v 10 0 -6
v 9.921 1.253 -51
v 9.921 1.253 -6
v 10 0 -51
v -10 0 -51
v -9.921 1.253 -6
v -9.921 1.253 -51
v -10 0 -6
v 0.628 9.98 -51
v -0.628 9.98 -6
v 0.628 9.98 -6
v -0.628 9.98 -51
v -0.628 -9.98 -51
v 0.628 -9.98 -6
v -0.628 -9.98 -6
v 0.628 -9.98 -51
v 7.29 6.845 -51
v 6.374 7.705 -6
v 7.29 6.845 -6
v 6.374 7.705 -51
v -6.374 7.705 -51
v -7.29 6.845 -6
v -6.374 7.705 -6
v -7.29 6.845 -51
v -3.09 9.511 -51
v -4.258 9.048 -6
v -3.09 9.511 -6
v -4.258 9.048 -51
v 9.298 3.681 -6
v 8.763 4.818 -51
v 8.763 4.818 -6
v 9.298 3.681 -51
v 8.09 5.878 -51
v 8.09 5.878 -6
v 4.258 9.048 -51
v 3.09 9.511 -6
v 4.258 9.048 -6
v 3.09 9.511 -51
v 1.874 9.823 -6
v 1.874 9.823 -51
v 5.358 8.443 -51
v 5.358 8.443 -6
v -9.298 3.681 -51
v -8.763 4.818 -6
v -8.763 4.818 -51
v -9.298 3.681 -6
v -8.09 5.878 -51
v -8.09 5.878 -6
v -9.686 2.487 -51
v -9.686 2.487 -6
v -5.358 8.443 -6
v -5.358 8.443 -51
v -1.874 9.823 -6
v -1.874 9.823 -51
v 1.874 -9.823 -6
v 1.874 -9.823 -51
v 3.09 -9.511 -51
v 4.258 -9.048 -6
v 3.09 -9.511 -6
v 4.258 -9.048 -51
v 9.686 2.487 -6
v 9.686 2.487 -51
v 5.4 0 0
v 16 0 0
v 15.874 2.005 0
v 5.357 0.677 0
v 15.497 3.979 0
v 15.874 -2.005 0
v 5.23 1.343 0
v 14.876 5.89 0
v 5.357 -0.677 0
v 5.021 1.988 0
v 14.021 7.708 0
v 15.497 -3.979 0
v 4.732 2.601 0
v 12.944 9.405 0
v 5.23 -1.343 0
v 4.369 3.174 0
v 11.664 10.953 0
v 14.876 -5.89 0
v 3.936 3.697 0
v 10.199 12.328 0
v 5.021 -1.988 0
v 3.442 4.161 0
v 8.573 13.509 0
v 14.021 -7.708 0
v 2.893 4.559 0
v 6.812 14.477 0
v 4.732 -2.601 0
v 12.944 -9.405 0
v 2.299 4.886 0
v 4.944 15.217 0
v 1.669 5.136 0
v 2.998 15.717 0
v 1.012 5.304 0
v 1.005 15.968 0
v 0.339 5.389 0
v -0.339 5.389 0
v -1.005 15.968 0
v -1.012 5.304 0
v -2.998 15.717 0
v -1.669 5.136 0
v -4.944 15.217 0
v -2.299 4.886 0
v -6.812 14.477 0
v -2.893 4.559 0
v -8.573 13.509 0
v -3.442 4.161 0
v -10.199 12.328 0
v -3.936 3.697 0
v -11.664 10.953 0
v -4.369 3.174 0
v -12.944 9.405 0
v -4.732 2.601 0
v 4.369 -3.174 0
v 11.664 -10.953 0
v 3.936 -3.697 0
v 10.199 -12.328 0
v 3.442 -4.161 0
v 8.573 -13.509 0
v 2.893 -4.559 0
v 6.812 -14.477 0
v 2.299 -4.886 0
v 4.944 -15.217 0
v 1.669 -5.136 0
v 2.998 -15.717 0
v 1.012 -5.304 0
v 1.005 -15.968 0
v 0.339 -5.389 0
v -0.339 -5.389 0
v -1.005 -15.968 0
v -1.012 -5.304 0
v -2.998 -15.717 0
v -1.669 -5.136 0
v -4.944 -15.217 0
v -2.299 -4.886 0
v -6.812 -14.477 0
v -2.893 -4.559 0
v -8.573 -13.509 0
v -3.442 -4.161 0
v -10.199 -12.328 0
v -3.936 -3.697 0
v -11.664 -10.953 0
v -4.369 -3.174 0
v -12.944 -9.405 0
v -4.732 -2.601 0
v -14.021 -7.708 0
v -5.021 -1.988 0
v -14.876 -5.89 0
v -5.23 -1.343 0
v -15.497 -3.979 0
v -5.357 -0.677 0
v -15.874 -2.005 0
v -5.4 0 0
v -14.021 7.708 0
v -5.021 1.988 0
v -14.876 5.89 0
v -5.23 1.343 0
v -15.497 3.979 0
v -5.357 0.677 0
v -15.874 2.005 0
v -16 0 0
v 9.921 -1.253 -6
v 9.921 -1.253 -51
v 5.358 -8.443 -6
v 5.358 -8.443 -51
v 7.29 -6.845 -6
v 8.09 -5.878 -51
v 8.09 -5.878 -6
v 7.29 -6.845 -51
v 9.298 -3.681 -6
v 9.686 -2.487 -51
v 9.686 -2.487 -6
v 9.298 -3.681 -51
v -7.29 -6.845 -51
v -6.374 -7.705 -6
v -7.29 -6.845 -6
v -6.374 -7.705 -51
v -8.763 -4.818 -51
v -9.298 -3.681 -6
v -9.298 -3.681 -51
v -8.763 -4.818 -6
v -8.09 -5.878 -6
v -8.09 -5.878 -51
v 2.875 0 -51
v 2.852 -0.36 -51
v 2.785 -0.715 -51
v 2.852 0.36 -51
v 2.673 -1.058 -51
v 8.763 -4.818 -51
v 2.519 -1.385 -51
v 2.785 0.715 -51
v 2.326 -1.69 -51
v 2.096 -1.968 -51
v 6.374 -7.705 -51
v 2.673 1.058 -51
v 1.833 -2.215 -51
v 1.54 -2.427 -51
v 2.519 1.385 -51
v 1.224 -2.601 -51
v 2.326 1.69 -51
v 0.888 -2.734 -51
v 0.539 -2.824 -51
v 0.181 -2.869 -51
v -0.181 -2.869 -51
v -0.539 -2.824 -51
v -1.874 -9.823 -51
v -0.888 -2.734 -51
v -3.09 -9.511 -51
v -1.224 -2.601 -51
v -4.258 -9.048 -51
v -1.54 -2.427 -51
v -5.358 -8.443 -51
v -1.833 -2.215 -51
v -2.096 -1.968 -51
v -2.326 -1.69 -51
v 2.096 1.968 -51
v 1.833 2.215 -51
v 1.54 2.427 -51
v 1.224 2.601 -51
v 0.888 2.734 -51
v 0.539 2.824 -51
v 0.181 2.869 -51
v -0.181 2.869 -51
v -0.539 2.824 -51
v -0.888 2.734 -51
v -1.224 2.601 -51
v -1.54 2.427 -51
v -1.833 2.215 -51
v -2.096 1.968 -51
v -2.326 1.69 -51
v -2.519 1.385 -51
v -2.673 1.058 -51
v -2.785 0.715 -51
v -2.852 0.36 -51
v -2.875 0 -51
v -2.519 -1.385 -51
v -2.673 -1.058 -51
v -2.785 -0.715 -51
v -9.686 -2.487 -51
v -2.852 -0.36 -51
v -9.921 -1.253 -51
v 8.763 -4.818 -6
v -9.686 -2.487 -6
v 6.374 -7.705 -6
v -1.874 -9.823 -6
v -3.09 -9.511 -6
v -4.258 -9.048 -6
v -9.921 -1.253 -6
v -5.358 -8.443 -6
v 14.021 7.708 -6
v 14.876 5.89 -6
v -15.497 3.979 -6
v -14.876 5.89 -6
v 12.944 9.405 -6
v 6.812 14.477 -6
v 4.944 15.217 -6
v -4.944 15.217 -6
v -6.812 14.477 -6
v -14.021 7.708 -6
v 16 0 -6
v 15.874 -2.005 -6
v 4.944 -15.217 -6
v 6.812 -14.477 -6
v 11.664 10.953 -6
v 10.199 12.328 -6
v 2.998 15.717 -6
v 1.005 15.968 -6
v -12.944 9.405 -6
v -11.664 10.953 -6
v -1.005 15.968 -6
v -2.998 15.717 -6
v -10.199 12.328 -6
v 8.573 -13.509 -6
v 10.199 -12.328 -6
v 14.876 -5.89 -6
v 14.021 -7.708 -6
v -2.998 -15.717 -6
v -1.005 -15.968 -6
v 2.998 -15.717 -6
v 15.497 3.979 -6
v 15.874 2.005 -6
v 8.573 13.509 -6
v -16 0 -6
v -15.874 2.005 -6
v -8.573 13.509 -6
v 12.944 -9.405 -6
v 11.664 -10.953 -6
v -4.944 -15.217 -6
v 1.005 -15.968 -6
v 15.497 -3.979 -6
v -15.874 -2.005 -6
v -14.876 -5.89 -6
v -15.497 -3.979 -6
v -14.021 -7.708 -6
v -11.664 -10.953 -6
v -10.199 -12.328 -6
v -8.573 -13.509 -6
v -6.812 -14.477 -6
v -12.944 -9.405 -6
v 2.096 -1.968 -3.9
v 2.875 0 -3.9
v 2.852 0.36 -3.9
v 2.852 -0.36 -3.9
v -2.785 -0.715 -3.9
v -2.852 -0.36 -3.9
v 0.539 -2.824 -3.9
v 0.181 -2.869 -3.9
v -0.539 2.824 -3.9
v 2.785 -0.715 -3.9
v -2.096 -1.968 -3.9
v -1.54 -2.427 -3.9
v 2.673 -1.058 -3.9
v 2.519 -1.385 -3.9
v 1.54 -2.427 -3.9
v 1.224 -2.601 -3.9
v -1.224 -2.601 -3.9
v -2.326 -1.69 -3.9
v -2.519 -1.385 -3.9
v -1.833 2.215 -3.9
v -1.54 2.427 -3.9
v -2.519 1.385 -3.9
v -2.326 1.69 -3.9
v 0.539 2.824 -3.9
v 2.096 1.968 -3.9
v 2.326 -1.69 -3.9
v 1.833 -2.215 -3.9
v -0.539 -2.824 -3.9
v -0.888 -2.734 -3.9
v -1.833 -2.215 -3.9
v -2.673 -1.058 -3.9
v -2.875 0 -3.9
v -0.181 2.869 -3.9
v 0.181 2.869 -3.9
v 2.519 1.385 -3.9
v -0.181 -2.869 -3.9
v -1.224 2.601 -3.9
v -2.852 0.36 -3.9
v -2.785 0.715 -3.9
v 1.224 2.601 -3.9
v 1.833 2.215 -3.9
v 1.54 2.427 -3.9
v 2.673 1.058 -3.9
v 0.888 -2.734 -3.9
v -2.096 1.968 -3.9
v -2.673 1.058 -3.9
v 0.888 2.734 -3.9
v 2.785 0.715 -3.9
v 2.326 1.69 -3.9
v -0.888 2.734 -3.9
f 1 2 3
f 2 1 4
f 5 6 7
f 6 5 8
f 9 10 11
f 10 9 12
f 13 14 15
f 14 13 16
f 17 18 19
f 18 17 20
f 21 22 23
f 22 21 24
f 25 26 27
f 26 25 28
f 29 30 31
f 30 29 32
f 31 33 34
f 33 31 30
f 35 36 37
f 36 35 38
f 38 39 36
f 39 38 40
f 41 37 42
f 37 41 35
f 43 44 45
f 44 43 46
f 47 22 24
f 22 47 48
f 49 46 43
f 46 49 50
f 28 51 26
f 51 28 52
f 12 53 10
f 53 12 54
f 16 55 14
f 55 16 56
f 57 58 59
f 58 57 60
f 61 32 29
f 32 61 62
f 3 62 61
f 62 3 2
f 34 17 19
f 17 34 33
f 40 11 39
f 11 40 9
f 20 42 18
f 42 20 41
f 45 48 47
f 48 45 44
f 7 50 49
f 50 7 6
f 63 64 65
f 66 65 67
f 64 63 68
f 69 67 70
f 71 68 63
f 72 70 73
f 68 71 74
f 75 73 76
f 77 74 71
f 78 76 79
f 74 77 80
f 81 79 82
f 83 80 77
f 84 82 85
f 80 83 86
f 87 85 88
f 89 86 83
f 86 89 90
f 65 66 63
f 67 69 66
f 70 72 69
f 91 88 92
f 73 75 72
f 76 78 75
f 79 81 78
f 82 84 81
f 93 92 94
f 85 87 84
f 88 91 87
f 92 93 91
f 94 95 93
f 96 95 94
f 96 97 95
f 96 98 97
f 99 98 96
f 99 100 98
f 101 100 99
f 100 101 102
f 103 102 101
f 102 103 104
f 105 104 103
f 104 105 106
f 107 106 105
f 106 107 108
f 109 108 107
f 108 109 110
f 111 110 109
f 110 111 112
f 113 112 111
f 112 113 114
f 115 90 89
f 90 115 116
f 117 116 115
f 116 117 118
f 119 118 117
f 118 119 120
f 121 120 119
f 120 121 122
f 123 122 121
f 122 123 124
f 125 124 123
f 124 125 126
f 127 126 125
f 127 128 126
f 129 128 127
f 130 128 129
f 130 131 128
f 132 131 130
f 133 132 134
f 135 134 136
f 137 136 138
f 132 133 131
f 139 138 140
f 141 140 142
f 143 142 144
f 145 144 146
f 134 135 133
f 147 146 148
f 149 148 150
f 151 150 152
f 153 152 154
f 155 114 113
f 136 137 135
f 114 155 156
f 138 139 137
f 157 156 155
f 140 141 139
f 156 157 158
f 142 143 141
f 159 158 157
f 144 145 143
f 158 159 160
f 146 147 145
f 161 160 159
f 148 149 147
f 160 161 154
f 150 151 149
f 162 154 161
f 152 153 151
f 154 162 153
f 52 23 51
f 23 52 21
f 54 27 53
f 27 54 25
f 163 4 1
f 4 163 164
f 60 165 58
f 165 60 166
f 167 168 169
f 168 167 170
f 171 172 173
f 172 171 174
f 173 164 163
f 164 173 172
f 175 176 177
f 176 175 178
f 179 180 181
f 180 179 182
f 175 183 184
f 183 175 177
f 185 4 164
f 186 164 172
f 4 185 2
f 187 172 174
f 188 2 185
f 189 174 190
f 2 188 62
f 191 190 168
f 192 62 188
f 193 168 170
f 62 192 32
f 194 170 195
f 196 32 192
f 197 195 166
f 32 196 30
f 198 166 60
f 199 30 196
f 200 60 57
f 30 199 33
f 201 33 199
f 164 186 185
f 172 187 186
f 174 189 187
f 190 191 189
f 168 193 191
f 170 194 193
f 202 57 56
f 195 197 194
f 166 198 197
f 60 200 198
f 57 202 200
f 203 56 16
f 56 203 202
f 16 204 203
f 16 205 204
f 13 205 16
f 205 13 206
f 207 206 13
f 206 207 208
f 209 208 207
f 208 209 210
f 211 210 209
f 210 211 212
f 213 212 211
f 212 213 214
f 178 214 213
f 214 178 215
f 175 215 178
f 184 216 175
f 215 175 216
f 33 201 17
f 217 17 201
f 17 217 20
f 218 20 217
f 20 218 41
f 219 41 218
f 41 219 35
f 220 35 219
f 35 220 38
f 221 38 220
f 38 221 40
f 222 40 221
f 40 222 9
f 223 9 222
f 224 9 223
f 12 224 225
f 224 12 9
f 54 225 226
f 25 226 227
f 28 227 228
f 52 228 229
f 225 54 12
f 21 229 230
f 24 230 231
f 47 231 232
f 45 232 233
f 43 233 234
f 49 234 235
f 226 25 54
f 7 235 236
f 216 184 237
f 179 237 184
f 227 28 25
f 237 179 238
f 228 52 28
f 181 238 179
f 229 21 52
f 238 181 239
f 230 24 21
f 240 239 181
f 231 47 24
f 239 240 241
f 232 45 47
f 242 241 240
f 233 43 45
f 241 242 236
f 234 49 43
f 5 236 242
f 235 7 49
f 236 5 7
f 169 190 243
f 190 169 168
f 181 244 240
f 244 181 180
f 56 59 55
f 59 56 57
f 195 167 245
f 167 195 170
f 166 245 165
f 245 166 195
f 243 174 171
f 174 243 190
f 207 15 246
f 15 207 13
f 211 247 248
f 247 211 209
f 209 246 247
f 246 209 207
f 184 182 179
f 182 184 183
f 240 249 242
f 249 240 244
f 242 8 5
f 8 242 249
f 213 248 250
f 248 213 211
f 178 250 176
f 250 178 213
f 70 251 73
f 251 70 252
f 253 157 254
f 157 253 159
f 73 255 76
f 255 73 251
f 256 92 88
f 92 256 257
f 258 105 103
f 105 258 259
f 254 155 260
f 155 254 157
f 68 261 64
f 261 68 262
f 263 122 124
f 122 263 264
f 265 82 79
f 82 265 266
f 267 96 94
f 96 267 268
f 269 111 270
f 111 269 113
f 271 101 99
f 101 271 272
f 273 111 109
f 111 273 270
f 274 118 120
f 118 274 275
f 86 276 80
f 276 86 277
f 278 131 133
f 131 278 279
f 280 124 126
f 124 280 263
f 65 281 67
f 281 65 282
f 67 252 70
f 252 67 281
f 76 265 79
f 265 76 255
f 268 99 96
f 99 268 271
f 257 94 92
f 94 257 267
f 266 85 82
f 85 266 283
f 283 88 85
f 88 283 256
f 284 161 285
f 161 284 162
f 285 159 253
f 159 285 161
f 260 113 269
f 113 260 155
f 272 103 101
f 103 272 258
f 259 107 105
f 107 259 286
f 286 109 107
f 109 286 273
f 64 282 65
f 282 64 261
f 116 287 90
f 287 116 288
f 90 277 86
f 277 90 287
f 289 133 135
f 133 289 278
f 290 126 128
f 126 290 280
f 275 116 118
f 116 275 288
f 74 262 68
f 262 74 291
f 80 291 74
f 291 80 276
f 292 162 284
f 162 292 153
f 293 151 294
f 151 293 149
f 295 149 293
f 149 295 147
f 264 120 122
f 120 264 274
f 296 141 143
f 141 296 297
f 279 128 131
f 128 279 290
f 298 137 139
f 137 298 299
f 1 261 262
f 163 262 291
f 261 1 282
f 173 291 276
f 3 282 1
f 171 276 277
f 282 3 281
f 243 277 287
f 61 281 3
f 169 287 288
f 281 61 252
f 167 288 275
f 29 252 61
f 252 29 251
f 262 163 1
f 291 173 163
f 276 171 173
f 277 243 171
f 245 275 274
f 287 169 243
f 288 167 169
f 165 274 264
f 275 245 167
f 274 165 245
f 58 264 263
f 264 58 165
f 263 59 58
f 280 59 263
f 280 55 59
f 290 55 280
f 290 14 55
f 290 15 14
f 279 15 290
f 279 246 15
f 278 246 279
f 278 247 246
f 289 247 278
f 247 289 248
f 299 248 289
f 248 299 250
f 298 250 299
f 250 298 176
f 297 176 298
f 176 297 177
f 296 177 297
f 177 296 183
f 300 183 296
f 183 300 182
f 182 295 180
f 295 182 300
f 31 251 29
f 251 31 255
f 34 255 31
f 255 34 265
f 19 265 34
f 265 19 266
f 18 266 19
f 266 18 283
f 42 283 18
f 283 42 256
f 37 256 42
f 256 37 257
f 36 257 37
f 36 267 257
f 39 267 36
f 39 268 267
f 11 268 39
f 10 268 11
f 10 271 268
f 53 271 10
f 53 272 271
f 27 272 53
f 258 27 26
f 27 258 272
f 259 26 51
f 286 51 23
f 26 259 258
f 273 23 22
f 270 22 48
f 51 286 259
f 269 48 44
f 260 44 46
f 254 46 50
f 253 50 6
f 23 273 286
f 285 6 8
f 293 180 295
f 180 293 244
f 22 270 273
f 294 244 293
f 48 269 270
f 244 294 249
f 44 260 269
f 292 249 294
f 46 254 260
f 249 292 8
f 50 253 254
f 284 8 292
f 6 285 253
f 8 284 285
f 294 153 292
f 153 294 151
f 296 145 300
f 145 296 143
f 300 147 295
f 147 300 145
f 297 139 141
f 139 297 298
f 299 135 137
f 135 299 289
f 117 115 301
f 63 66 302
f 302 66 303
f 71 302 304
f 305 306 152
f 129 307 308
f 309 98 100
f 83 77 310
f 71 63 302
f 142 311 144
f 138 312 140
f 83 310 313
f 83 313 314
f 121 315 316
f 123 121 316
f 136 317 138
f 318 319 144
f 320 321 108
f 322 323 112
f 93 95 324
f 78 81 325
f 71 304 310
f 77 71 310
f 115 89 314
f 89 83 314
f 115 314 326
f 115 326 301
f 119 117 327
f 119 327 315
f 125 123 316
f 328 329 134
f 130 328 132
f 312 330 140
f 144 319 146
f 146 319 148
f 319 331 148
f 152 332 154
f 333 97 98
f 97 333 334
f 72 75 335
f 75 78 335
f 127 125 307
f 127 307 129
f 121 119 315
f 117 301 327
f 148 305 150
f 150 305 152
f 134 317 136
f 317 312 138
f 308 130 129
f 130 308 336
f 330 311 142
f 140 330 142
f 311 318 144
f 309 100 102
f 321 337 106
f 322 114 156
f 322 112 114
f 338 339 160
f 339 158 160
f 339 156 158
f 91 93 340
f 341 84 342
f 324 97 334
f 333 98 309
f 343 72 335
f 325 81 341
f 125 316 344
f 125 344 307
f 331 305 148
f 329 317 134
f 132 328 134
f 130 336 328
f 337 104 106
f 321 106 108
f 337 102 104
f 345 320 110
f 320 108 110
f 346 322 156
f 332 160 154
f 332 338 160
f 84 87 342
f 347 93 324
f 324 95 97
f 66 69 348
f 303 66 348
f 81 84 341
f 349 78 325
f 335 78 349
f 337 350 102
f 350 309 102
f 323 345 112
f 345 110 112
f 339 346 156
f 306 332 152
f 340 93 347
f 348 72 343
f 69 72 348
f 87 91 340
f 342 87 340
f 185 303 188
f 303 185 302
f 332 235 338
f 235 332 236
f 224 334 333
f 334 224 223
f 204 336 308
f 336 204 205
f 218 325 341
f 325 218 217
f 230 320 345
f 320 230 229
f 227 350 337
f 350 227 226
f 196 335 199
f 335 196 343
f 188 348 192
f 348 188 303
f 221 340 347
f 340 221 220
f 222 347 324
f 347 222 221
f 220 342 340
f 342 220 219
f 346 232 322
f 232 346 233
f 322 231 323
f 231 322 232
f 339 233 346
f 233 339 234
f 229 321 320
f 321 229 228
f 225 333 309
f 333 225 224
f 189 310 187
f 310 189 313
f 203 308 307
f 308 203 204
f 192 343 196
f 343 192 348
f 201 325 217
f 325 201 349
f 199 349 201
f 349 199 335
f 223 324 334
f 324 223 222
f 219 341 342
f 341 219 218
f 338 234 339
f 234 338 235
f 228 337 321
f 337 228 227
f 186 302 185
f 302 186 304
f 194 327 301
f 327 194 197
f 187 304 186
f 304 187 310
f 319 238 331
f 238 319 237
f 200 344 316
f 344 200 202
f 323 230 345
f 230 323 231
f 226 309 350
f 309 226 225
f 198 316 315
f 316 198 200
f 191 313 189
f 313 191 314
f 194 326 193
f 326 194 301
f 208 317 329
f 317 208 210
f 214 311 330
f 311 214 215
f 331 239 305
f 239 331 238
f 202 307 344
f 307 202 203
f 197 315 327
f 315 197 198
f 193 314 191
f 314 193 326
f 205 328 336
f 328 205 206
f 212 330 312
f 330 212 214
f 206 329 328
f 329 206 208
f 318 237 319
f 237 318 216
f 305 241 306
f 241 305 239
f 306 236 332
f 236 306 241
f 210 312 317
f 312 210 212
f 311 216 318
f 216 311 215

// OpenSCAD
$fn = 50;


difference() {
	union() {
		translate(v = [0, 0, -51.0000000000]) {
			cylinder(h = 51, r = 10.0000000000);
		}
		translate(v = [0, 0, -6.0000000000]) {
			cylinder(h = 6, r = 16.0000000000);
		}
	}
	union() {
		translate(v = [0, 0, 0]) {
			rotate(a = [0, 0, 0]) {
				difference() {
					union() {
						#translate(v = [0, 0, -51.0000000000]) {
							cylinder(h = 51, r = 2.6000000000);
						}
						#translate(v = [0, 0, -3.9000000000]) {
							cylinder(h = 3.9000000000, r = 10.0000000000, r1 = 2.8750000000, r2 = 5.4000000000);
						}
						#translate(v = [0, 0, -51.0000000000]) {
							cylinder(h = 51, r = 2.8750000000);
						}
						#translate(v = [0, 0, -51.0000000000]) {
							cylinder(h = 51, r = 2.6000000000);
						}
					}
					union();
				}
			}
		}
	}
}
